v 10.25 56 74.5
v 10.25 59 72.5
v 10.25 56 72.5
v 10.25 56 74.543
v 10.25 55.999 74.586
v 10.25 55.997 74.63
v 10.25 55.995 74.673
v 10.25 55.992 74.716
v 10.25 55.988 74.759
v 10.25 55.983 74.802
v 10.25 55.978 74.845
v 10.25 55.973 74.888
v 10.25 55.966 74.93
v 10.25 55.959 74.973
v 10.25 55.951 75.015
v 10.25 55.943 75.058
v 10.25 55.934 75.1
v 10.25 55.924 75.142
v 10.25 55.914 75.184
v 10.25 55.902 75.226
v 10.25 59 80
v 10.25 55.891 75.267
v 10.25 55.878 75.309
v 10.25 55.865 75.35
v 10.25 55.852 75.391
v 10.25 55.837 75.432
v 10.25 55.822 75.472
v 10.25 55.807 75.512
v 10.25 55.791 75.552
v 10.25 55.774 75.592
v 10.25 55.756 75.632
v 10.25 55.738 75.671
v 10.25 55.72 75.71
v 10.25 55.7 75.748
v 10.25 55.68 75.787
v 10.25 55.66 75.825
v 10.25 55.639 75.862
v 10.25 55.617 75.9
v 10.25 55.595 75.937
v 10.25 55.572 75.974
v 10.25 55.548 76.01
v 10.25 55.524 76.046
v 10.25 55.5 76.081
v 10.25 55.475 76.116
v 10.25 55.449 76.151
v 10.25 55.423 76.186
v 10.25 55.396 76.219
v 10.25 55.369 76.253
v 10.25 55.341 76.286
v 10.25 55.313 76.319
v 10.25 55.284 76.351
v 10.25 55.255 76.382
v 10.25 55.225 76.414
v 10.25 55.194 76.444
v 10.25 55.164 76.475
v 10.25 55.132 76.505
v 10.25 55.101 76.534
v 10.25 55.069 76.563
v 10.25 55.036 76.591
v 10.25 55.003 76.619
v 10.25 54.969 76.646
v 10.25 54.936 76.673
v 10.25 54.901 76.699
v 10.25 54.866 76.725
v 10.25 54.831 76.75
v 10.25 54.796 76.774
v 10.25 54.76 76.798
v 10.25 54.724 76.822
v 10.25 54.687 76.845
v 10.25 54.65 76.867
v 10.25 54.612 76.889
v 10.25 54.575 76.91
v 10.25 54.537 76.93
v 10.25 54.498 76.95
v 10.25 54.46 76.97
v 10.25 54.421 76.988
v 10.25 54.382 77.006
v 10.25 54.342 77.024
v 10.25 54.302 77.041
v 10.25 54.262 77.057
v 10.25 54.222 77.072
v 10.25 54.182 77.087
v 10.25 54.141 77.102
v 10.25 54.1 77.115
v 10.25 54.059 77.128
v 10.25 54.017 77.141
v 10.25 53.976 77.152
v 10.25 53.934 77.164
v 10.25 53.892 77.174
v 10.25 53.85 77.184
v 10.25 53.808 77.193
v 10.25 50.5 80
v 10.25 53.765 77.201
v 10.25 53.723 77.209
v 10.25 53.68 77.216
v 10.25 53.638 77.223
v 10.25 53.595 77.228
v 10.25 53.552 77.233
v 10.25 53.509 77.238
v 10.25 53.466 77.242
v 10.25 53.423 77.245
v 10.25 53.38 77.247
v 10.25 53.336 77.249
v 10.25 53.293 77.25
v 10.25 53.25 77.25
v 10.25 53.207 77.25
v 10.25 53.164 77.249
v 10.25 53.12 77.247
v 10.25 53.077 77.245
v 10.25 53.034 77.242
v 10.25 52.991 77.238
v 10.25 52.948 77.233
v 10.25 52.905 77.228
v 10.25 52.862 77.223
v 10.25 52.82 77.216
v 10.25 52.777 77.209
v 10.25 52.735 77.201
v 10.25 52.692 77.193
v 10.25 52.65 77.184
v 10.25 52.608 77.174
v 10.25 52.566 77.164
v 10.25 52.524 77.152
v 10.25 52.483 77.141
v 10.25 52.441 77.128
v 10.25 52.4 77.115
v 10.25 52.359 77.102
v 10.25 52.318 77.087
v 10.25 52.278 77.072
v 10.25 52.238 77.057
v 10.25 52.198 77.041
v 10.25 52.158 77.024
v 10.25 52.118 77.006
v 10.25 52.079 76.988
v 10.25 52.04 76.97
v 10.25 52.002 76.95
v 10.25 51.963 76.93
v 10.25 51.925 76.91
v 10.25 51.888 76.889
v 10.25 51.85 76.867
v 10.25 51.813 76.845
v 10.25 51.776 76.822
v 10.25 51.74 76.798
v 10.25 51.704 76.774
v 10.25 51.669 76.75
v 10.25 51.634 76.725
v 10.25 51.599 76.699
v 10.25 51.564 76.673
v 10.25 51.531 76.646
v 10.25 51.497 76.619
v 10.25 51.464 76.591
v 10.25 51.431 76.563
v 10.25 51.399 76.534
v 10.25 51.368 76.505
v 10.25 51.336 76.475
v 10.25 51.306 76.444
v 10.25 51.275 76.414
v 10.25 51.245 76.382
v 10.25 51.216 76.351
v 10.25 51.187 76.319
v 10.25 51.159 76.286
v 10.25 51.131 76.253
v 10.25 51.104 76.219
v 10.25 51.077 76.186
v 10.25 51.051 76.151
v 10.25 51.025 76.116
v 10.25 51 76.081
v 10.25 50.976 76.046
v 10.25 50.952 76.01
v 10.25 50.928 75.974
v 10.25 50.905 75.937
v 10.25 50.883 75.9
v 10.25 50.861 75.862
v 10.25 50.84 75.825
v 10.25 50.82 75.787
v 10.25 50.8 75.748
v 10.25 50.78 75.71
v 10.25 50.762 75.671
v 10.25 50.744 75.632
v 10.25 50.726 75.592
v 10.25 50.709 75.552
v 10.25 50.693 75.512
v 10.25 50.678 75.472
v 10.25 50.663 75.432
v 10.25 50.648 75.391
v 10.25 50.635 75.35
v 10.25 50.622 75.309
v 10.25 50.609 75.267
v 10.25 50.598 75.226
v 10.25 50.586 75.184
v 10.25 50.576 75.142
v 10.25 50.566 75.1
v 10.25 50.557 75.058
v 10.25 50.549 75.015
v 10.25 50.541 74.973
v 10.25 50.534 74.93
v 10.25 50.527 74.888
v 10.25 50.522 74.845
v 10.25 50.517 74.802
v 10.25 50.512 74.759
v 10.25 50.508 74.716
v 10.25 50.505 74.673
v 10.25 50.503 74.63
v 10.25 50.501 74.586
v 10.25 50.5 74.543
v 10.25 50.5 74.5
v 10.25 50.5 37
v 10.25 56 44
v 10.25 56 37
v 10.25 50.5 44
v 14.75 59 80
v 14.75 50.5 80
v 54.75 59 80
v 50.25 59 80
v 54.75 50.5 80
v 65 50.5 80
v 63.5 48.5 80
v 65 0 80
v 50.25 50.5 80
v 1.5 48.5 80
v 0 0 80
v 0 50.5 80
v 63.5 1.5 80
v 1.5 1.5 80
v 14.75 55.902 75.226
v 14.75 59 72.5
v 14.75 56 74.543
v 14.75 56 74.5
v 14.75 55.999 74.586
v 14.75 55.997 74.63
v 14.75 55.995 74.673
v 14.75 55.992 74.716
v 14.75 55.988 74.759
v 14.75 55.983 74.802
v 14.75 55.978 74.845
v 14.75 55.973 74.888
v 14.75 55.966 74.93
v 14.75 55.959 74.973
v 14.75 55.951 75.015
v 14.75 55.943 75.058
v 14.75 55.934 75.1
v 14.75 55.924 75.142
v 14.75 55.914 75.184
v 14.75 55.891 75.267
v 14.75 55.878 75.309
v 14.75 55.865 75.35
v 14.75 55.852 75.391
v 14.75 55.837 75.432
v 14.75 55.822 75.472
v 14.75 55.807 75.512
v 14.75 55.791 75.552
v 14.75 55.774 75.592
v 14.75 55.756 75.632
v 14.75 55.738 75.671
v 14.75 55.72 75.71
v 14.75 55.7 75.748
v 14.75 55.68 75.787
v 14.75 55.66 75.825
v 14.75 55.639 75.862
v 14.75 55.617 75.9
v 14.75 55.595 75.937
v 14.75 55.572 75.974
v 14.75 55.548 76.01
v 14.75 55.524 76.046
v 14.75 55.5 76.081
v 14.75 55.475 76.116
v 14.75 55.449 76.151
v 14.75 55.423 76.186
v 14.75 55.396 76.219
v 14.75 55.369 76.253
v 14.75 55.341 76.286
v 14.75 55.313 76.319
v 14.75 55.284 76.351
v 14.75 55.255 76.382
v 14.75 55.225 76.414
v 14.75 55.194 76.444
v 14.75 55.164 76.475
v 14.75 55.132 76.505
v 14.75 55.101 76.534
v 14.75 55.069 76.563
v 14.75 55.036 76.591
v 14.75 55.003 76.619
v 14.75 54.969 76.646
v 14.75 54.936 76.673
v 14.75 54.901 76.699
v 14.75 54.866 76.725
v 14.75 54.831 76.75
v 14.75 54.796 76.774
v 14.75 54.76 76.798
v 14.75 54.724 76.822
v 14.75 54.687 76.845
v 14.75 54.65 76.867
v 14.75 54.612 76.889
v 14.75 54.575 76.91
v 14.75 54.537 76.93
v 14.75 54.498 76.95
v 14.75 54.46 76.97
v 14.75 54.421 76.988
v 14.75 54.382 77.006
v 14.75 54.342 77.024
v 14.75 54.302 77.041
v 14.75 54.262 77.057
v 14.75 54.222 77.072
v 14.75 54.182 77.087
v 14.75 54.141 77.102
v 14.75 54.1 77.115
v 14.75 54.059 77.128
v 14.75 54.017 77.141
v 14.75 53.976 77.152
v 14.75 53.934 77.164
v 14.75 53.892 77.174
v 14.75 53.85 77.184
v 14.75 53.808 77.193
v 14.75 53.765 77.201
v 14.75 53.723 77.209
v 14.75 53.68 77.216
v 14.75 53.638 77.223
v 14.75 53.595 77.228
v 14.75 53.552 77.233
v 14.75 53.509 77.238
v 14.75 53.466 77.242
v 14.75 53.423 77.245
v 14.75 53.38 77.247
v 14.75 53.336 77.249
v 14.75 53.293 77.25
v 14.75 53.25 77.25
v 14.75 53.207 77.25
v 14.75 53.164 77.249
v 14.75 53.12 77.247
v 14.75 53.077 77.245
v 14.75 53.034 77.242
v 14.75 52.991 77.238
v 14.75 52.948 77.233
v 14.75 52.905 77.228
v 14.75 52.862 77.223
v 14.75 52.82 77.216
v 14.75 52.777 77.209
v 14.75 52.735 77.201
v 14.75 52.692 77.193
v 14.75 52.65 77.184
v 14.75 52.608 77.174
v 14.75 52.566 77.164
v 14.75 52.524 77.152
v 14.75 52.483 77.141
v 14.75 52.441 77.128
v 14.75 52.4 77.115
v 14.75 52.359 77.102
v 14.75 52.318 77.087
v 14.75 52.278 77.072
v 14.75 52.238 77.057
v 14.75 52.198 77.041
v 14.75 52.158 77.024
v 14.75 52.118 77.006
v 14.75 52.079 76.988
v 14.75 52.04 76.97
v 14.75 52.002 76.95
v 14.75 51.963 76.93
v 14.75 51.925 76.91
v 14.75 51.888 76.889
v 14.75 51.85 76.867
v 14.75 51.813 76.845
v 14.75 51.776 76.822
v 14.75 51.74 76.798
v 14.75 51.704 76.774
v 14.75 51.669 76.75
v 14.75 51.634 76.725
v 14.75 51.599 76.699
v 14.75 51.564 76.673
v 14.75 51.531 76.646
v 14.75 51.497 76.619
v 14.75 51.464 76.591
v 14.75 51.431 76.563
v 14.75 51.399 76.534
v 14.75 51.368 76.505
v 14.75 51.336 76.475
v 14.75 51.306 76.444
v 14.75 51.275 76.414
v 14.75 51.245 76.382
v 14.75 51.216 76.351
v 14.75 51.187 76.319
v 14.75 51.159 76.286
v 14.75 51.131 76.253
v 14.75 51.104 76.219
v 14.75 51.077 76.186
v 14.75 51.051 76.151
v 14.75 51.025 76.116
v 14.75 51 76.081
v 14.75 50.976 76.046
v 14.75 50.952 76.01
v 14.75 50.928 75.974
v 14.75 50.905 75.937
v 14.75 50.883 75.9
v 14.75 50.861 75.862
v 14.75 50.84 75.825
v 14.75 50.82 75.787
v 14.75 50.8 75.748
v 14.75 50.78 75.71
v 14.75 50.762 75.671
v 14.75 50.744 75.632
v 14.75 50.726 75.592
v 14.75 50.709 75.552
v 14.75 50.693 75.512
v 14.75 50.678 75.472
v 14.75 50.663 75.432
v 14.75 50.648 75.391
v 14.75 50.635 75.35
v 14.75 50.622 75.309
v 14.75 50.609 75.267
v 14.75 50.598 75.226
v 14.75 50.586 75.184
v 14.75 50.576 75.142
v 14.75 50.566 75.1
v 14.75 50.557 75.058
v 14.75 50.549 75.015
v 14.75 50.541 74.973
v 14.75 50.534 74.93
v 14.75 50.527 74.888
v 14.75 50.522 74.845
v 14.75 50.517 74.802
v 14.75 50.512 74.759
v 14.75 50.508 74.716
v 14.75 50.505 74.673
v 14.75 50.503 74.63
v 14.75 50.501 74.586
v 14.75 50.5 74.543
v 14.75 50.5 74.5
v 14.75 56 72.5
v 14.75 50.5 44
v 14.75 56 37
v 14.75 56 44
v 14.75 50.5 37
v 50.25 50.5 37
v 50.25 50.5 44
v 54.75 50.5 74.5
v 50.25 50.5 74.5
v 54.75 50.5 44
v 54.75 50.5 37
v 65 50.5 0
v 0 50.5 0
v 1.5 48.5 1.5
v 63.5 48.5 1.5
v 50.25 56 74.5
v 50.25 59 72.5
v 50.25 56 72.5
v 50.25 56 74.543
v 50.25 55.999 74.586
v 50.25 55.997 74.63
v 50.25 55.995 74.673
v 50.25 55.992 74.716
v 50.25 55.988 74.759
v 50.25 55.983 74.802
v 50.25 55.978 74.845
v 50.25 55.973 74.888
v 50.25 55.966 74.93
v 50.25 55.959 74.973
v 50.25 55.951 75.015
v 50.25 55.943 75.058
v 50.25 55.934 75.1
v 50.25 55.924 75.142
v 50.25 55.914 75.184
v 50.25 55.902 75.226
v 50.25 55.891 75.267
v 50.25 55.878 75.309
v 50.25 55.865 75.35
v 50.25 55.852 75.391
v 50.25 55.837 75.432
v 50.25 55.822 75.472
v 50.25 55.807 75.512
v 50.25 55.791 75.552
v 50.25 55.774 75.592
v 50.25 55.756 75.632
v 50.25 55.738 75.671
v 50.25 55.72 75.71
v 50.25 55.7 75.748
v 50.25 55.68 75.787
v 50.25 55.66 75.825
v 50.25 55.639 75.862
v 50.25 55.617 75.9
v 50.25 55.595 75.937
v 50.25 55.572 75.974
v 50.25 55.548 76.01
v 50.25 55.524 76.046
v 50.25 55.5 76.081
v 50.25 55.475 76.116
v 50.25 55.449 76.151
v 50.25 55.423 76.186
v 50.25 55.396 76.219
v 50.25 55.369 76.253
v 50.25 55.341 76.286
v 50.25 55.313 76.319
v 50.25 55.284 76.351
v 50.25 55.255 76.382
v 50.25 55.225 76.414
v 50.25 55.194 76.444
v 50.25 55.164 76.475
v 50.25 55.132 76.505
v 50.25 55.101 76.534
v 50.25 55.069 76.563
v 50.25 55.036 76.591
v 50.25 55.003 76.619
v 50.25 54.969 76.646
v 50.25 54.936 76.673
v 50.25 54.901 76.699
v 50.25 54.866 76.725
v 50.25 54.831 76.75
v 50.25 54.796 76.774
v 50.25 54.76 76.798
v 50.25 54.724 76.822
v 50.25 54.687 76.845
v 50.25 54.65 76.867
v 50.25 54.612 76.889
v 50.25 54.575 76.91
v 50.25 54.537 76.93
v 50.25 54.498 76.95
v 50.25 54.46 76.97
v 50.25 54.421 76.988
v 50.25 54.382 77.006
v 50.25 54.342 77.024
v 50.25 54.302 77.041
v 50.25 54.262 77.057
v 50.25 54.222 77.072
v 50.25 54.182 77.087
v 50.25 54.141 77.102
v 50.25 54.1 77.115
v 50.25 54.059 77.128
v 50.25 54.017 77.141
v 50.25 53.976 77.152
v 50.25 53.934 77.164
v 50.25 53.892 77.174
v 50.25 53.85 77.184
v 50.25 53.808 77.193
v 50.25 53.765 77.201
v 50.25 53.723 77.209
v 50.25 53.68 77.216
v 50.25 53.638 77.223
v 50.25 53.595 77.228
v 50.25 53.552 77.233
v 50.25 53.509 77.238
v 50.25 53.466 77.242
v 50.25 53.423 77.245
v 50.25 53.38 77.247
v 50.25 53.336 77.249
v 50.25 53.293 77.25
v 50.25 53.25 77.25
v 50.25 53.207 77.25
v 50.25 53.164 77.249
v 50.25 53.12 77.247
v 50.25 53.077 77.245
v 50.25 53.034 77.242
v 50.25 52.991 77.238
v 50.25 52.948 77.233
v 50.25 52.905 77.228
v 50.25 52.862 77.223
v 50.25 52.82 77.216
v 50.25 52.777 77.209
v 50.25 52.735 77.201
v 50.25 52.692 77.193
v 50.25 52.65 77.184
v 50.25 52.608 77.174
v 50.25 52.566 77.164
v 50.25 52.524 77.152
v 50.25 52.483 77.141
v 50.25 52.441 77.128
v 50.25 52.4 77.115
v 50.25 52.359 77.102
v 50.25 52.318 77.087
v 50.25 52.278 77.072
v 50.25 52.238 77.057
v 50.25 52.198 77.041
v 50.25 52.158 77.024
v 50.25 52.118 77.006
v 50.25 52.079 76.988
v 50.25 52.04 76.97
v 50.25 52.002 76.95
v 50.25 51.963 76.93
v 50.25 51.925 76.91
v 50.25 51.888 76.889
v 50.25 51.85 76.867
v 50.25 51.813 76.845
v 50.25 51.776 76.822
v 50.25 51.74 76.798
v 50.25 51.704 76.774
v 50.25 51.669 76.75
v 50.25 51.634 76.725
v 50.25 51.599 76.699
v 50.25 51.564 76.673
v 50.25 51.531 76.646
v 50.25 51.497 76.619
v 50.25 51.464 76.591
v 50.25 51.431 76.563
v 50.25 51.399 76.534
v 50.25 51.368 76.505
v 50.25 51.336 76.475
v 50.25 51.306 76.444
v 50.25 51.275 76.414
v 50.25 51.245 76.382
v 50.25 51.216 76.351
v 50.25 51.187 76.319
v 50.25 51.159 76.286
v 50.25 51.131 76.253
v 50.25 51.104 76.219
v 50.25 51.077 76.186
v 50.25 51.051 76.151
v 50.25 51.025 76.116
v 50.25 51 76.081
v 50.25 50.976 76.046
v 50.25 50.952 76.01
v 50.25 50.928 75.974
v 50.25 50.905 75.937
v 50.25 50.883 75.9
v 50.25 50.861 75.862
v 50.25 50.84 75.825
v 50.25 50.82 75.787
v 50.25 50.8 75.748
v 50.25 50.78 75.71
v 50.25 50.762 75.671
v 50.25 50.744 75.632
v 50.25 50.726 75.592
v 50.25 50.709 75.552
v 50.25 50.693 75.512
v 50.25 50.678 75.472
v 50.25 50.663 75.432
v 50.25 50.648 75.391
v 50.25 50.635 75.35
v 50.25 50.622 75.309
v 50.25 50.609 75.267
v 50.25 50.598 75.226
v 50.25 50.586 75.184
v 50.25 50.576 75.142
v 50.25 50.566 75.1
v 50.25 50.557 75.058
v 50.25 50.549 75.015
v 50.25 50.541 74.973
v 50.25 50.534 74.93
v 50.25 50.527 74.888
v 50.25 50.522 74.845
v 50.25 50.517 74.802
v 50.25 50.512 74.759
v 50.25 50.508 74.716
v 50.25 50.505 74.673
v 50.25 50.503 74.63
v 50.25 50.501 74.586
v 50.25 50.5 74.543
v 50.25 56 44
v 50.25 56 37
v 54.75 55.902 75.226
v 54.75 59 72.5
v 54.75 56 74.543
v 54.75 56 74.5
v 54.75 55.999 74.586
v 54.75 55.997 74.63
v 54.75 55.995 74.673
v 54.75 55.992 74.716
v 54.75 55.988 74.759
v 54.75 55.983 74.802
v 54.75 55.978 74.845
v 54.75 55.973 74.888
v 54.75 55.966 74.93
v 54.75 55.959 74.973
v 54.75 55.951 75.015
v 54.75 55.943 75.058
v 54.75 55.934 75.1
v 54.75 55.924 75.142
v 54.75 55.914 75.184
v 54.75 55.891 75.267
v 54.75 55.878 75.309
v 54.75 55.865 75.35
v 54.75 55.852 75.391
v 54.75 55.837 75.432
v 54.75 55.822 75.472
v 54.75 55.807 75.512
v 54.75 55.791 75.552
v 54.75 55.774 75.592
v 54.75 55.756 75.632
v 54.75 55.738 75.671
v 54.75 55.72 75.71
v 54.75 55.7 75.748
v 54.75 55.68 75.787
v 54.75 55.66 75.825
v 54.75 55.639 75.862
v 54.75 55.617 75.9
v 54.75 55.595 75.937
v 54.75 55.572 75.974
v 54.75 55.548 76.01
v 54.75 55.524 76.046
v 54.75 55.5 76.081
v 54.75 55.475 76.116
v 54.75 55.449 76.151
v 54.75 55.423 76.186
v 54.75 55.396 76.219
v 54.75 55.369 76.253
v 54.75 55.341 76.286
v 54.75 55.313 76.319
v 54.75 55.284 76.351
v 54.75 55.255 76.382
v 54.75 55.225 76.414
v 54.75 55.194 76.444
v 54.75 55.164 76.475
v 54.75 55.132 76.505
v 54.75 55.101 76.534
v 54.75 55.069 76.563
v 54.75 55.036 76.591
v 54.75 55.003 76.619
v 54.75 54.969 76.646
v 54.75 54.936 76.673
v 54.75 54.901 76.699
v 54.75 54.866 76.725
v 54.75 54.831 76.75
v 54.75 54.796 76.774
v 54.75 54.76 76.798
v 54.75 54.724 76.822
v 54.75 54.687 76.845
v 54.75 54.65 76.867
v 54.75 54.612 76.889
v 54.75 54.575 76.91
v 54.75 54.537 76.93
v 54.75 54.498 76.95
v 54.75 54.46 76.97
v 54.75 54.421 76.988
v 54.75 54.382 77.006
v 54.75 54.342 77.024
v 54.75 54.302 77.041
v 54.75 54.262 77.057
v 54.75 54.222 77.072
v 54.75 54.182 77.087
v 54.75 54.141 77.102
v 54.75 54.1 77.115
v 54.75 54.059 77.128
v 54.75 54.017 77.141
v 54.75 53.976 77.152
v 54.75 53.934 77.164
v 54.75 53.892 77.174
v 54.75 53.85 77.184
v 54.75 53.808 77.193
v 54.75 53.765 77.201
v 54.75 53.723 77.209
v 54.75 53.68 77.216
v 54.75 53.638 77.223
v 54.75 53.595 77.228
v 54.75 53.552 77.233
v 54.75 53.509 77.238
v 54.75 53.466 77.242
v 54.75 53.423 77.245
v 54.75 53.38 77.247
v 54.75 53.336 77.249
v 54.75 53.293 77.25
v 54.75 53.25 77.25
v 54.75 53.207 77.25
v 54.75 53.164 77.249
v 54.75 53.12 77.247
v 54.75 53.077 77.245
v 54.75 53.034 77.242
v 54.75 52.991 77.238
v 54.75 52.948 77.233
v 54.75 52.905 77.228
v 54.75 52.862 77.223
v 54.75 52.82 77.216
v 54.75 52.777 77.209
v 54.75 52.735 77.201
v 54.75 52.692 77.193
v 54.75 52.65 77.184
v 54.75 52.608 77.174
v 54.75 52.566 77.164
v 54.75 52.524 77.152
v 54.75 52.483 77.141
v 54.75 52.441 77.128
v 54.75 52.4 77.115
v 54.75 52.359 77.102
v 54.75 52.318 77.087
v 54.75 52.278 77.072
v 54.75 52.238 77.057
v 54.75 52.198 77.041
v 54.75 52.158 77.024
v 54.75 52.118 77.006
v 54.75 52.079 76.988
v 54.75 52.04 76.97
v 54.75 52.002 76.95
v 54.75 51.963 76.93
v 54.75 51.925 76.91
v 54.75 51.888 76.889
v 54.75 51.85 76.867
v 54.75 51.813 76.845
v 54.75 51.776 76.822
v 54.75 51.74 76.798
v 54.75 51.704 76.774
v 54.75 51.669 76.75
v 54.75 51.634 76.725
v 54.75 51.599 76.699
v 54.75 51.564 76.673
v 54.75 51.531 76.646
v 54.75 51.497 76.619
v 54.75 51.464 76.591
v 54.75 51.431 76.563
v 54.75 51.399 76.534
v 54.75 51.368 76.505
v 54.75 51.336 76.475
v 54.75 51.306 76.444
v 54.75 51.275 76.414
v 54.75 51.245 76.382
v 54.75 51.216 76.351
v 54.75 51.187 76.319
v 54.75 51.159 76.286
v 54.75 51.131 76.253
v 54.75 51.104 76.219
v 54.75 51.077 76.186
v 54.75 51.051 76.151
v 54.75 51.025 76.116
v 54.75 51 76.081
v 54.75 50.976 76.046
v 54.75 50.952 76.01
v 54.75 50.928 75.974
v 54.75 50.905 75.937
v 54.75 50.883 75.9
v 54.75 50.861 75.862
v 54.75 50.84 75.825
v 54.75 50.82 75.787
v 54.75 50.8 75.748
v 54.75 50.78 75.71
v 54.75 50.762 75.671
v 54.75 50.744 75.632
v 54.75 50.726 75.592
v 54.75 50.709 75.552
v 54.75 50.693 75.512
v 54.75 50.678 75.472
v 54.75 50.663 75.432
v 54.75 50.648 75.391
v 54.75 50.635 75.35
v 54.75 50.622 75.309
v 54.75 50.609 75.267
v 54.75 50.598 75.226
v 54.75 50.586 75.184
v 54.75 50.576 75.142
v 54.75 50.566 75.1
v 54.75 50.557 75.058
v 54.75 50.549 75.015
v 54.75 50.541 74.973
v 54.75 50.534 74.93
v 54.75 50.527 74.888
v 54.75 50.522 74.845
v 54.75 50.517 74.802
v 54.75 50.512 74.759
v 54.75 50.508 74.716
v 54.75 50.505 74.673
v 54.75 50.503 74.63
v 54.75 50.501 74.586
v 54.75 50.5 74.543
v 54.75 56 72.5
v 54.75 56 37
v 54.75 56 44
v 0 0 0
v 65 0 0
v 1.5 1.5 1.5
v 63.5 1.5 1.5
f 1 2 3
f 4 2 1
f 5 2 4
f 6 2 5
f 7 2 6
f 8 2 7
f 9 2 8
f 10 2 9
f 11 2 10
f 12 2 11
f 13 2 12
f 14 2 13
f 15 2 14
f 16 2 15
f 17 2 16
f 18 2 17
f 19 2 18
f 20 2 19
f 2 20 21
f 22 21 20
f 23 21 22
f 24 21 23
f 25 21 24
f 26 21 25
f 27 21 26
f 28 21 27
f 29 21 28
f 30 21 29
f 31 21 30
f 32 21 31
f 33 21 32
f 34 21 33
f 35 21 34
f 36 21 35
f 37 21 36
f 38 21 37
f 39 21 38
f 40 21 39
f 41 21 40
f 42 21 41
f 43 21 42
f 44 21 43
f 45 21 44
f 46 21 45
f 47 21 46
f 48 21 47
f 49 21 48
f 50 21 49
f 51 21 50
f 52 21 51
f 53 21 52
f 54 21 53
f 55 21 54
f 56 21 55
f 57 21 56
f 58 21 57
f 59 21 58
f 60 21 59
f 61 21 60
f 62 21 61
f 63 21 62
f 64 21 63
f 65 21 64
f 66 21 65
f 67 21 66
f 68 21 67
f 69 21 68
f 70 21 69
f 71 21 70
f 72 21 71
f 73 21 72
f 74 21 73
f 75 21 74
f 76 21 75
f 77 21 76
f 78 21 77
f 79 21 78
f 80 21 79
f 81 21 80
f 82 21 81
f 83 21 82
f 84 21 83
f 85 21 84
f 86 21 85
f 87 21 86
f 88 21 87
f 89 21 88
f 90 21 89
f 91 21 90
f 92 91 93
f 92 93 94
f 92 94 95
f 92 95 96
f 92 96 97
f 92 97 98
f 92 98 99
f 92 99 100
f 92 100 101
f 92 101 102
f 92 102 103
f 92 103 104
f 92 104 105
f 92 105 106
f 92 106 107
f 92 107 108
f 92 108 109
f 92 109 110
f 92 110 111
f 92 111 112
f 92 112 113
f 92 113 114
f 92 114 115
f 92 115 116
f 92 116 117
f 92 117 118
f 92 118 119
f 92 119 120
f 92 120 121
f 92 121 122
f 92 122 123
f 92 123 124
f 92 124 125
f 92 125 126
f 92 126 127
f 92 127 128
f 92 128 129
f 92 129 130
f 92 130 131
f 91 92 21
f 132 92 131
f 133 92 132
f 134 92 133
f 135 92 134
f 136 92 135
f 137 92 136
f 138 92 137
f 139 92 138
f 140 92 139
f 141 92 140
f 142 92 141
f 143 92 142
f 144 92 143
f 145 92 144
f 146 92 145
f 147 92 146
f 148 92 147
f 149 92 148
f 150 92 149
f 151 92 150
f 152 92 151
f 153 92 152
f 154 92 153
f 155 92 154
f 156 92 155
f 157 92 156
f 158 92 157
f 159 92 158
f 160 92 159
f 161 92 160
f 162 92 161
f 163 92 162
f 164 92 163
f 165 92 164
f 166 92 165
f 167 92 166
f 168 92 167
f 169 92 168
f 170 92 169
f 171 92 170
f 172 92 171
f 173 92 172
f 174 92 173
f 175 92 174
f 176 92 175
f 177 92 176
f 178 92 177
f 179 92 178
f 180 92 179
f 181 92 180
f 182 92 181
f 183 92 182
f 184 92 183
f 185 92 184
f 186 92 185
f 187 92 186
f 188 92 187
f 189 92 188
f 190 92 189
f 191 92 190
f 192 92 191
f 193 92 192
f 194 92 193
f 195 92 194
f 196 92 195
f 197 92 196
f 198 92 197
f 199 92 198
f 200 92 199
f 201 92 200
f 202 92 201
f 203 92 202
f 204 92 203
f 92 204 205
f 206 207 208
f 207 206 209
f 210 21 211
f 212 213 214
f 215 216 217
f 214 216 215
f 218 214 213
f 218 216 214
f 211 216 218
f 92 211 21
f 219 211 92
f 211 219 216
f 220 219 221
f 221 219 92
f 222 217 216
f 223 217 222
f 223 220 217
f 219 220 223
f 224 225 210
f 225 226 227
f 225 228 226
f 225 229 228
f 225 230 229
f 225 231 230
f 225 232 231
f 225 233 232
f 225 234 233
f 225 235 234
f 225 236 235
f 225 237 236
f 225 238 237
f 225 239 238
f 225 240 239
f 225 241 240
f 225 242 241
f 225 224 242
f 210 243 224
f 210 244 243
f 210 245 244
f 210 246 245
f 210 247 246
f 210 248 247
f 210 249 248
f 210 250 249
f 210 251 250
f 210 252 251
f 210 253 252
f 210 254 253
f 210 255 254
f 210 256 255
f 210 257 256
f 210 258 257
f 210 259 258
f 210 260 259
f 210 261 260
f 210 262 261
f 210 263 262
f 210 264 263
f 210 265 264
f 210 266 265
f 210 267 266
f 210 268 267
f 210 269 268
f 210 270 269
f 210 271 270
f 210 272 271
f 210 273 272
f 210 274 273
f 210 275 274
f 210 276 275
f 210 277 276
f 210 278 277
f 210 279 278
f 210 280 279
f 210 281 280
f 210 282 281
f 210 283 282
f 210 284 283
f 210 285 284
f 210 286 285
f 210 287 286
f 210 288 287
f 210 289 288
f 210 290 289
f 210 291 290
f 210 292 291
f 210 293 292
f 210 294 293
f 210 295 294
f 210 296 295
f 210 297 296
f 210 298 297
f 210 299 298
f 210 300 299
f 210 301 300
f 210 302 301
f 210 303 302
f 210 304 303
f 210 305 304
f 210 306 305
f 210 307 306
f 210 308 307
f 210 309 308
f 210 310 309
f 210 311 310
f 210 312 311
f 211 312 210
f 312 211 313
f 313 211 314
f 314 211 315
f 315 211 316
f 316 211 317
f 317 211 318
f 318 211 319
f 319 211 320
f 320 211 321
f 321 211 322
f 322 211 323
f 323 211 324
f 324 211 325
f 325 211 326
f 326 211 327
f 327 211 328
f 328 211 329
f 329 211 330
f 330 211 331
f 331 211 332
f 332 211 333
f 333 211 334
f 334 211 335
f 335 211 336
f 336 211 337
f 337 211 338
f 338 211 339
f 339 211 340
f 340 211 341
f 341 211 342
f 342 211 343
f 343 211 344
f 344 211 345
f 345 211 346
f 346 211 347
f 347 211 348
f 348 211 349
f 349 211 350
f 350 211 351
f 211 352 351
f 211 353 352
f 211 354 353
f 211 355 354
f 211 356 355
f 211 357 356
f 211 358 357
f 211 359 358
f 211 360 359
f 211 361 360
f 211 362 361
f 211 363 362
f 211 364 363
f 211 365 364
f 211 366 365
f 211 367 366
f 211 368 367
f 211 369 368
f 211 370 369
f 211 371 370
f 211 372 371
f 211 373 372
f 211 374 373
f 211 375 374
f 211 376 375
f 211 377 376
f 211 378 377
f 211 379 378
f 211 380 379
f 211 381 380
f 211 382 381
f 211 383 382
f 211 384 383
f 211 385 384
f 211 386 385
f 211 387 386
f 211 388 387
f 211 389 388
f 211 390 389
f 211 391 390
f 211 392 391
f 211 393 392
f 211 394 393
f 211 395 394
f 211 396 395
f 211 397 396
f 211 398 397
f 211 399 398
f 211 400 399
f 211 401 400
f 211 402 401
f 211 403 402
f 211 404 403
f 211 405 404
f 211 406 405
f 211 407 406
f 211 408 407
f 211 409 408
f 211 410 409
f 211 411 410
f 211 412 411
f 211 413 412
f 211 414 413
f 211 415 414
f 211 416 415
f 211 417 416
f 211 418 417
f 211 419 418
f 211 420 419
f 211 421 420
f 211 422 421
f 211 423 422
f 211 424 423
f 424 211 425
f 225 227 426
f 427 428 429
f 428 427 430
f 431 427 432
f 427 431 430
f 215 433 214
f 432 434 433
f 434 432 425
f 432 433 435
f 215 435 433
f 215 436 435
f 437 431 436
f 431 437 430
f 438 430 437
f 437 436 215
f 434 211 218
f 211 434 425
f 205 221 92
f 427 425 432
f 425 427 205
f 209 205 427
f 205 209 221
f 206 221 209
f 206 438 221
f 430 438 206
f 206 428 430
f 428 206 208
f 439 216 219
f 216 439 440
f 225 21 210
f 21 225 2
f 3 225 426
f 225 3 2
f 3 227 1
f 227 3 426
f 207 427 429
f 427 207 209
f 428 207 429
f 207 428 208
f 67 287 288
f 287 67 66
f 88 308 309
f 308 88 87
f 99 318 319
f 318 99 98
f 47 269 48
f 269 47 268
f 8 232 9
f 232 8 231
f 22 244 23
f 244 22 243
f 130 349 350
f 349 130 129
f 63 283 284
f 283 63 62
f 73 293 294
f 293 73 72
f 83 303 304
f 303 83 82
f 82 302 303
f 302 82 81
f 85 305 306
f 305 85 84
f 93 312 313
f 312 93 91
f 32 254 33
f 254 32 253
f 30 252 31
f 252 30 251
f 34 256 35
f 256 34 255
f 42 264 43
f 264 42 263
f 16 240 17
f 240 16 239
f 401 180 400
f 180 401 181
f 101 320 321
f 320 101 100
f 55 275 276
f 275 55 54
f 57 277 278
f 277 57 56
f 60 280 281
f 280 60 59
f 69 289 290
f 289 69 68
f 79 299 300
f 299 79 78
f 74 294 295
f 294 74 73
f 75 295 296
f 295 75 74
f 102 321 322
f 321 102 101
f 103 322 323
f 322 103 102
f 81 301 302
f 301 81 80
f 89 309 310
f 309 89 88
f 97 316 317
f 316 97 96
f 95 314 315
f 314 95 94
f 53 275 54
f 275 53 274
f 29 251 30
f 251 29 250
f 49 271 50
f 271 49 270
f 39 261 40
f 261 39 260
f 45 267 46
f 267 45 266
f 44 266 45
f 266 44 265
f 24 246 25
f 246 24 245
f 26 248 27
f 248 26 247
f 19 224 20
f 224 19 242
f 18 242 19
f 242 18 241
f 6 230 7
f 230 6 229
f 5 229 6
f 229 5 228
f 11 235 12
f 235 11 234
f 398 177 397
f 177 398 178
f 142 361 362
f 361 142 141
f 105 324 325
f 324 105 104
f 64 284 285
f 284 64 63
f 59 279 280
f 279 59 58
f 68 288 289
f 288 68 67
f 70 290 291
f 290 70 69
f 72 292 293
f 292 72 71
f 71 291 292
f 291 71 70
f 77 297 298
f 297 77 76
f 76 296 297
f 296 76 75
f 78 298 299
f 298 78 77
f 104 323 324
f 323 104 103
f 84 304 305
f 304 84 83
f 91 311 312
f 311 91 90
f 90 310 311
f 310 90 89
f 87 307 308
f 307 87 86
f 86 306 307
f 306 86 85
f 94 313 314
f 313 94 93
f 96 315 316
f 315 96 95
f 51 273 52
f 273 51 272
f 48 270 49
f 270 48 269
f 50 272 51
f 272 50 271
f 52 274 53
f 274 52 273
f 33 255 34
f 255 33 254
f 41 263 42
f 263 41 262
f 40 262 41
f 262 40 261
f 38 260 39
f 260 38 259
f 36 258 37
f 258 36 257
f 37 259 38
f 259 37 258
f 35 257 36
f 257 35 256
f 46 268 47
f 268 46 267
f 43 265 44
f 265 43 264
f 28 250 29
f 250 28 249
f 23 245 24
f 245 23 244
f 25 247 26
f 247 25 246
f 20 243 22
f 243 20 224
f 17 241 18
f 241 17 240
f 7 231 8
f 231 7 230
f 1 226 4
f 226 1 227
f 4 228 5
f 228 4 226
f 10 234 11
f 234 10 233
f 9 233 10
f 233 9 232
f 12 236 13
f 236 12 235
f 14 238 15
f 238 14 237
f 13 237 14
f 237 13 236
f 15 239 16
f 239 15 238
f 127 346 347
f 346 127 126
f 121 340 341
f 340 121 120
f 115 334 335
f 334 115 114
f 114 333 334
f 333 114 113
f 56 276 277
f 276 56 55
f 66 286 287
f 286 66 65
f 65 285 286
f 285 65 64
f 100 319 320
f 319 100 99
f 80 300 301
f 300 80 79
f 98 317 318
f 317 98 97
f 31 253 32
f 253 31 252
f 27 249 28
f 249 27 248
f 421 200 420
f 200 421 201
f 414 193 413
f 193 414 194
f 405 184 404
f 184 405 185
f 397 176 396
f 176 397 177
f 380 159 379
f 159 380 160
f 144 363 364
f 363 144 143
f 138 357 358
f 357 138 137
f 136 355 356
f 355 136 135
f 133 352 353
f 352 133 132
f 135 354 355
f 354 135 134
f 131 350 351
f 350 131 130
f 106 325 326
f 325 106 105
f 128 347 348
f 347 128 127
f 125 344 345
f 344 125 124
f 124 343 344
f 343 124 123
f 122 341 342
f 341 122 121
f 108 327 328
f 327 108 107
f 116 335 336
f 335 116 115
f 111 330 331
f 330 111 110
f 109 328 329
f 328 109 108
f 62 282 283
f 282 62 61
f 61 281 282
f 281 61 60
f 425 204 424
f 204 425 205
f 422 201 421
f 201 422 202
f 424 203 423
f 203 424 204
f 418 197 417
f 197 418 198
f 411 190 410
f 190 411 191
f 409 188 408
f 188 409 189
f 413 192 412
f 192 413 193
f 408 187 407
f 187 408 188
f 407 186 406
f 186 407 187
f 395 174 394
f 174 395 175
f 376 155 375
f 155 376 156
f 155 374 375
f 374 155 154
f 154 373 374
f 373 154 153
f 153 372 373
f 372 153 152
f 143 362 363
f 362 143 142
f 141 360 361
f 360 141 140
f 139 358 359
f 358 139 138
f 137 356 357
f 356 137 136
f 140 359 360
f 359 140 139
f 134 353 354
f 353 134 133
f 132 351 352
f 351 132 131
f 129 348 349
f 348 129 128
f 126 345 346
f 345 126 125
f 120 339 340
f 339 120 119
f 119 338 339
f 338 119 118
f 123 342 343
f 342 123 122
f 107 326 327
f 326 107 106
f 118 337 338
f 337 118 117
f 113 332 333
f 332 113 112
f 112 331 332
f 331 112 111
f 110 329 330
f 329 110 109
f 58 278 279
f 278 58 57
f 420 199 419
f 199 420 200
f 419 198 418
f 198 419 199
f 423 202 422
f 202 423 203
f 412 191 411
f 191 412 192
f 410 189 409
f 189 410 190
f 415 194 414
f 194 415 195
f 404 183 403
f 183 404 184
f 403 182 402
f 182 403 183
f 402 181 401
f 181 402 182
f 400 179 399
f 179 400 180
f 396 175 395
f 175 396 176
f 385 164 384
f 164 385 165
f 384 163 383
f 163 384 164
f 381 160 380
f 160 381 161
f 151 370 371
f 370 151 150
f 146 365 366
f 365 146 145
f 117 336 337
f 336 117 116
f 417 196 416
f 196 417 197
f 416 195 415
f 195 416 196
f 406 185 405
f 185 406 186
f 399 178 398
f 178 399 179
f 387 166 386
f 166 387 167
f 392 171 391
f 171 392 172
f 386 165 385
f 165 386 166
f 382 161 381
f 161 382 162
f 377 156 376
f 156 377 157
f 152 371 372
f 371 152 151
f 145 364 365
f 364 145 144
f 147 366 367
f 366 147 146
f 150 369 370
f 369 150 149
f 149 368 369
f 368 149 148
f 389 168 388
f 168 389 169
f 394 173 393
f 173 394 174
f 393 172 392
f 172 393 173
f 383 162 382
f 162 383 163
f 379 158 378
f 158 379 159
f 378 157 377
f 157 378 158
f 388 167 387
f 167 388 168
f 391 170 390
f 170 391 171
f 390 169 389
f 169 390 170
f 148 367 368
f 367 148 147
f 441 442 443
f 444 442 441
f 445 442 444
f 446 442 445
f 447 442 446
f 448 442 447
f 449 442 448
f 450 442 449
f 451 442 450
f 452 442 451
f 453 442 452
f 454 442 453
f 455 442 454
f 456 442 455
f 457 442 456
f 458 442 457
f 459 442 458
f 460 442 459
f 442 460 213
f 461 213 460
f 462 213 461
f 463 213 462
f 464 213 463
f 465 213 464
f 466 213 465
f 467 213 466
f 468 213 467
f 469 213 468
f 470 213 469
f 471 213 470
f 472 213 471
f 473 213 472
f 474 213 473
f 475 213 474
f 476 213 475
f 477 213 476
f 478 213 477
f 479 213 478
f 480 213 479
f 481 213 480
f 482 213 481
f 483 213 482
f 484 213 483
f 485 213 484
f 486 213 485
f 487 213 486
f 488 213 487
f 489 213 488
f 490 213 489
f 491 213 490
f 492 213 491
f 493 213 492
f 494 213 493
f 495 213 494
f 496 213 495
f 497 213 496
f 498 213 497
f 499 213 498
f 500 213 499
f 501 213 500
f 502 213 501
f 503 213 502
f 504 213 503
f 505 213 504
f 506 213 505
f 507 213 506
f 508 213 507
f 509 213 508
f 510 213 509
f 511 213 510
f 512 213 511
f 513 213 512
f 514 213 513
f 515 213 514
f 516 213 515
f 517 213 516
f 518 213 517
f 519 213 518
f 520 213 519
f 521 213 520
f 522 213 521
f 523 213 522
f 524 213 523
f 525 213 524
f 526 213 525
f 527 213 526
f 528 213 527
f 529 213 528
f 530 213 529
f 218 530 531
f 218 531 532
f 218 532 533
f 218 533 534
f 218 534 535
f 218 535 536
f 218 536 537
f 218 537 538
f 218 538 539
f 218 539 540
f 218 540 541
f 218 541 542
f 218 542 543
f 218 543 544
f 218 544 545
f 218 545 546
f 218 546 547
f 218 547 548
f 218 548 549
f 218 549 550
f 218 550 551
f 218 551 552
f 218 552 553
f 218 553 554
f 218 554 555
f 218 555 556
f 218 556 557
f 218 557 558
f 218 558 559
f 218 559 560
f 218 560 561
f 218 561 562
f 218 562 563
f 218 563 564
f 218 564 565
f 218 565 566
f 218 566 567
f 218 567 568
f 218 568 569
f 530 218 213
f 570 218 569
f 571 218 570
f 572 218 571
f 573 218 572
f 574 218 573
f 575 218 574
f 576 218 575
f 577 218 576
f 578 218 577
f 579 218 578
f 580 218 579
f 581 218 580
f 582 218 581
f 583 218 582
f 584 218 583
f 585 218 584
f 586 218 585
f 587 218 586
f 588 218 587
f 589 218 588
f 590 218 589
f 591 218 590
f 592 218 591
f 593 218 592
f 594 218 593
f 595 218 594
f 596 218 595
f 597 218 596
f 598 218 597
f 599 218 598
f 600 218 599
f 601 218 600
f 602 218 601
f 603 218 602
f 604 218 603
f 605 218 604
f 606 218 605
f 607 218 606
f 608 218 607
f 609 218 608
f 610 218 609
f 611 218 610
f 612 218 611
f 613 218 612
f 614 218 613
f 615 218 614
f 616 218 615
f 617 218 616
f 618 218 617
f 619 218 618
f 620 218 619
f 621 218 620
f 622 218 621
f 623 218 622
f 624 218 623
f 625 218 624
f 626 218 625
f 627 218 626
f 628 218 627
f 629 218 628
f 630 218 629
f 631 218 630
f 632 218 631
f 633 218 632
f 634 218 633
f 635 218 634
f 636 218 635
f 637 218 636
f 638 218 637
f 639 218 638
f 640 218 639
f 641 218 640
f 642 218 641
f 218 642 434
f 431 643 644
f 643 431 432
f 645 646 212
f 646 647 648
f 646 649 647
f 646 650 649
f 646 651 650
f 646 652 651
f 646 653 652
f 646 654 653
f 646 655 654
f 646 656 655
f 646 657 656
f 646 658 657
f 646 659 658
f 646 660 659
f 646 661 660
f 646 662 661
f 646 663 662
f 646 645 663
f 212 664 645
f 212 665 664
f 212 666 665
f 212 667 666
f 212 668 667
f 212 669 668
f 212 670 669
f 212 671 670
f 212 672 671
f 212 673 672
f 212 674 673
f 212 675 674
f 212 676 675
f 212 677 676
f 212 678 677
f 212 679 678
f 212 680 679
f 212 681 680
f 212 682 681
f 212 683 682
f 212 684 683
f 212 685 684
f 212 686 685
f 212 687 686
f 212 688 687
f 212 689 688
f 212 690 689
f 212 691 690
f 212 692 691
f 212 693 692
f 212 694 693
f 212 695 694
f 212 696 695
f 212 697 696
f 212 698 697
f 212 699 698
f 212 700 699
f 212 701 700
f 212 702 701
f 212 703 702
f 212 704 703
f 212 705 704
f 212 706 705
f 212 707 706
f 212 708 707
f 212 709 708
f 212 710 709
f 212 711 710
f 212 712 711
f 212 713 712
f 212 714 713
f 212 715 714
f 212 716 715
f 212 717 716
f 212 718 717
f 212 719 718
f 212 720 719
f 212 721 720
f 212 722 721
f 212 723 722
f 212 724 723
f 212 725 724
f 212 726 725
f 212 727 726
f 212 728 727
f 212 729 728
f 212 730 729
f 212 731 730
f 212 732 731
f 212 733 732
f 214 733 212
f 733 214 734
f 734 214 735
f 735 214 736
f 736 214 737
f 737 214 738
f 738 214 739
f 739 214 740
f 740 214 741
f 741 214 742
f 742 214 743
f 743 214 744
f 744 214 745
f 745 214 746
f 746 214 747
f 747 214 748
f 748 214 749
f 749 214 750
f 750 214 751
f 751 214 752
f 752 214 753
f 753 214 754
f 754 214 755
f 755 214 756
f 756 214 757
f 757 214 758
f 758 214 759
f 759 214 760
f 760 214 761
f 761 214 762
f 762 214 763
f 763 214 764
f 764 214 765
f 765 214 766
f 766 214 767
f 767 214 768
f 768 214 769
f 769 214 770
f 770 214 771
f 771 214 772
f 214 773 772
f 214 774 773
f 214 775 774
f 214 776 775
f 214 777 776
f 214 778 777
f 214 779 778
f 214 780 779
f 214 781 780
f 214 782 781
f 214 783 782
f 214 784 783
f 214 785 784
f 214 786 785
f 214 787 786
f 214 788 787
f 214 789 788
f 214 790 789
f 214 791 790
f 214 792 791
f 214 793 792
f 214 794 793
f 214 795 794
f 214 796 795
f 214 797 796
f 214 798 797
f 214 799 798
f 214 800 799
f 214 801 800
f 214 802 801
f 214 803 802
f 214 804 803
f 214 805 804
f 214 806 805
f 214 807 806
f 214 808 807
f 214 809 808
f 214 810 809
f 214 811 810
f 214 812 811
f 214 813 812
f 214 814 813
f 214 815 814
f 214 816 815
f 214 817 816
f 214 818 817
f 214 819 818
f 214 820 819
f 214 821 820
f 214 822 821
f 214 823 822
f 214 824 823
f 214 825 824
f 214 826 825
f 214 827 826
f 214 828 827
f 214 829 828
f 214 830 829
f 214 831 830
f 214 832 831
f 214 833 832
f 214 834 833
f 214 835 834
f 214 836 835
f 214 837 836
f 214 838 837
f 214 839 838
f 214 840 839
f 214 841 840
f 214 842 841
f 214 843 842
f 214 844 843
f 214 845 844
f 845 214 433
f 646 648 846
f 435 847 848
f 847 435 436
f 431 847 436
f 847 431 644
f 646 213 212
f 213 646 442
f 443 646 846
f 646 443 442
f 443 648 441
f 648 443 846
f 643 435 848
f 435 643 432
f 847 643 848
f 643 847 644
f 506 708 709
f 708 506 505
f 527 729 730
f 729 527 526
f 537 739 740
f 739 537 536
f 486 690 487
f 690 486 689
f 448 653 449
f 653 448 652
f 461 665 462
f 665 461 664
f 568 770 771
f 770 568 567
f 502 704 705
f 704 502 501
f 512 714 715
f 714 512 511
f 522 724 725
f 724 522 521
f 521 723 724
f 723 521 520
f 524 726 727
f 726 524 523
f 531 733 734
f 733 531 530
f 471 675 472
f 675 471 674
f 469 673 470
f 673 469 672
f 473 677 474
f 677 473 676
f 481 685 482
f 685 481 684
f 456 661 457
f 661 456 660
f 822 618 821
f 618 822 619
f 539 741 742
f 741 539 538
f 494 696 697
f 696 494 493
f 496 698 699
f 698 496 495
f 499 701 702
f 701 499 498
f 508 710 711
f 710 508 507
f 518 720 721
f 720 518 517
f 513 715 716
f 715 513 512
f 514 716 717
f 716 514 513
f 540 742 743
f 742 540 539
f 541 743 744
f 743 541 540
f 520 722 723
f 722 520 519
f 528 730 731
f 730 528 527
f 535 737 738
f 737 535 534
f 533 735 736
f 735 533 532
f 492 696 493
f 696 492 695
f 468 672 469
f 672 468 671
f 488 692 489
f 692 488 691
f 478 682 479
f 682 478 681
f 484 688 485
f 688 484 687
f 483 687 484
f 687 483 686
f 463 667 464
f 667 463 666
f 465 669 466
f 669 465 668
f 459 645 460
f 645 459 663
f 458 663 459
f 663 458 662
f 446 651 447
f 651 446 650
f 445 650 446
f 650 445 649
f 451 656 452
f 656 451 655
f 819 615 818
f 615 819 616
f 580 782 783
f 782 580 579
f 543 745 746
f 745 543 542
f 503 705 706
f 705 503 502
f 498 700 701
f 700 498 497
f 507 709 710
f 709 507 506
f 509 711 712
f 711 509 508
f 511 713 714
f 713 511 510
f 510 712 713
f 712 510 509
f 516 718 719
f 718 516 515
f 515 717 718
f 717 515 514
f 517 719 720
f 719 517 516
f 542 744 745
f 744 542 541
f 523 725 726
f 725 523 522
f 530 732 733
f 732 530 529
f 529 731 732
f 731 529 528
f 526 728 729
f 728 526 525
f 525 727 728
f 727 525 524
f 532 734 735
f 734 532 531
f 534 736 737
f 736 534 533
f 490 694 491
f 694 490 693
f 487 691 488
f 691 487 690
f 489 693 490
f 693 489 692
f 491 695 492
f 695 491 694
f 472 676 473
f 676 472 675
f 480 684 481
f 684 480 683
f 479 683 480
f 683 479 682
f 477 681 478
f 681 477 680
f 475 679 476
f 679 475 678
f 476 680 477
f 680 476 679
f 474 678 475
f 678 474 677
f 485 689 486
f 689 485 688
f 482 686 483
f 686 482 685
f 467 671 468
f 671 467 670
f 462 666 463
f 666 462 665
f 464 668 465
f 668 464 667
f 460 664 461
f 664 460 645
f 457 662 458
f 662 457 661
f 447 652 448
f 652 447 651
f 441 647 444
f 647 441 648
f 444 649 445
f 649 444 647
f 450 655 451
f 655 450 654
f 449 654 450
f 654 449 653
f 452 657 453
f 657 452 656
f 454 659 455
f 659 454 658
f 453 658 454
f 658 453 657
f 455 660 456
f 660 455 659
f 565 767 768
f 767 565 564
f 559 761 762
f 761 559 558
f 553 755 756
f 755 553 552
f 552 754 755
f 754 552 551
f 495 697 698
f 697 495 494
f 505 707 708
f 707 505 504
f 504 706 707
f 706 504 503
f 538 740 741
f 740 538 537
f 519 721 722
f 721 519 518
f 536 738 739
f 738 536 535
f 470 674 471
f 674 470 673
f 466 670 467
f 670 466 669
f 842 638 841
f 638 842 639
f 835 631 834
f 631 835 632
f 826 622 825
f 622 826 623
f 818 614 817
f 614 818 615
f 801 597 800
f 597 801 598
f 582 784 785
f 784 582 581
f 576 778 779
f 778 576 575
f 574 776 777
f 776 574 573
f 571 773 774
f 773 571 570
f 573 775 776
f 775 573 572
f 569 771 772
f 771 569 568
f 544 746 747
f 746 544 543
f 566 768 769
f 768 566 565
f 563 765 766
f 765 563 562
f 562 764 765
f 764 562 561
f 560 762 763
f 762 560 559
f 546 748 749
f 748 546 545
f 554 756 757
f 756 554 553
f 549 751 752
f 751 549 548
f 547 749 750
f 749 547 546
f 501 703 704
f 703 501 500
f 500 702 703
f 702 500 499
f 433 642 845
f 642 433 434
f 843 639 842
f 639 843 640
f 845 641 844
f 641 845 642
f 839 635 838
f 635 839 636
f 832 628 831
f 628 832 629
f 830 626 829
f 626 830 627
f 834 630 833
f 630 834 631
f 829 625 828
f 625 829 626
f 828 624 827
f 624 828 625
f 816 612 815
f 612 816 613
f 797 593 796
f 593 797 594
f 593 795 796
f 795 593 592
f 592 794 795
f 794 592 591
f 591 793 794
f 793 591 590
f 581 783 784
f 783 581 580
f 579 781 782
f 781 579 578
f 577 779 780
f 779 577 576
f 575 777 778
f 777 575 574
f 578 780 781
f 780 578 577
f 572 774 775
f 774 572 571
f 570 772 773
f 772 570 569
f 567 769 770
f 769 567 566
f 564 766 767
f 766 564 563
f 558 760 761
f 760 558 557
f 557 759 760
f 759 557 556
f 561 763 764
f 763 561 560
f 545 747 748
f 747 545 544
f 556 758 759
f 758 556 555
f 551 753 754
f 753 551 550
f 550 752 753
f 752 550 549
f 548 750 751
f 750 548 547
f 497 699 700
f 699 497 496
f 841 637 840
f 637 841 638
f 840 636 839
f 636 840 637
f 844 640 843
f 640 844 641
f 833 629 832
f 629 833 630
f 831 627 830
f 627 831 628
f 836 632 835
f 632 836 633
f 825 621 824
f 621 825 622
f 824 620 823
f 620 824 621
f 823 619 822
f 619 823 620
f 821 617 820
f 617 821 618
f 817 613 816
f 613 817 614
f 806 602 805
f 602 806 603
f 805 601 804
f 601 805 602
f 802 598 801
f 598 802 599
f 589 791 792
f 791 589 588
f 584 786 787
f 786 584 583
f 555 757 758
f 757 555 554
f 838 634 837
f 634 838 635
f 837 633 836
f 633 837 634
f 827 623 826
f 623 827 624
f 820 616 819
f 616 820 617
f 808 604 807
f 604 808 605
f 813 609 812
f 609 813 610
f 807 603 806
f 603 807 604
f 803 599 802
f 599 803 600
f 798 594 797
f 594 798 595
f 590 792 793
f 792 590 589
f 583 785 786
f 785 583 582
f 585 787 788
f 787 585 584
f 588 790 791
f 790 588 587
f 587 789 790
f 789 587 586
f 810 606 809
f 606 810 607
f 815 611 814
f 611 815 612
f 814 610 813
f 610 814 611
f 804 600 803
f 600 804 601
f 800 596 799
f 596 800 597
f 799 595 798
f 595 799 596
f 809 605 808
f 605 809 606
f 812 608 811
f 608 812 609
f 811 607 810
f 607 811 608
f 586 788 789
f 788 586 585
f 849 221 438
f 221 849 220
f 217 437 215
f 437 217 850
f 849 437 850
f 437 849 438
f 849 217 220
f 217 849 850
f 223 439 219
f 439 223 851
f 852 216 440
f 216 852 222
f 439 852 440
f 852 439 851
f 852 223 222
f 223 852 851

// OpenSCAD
// file: IKEA Skadis include holder.scad
$fn=400;

sh_height=43;
sh_width=4.5;
sh_hanger_spacing=5.5;
sh_material_size=2;
sh_short_tail=2;

module ikea_skadis_holder() {
    difference() {
        union() {
            
            //Vertical wall
            color("green")
            cube([sh_width,sh_material_size,sh_height]);
            
            // Retainer
            color("blue")
            translate([0,0,sh_height-sh_hanger_spacing])
            cube([sh_width,sh_hanger_spacing+sh_material_size*2+1,sh_hanger_spacing]);
            
            //Vertical wall (short)
            color("cyan")
            translate([0, sh_hanger_spacing+sh_material_size,sh_height-sh_short_tail-sh_hanger_spacing])
            cube([sh_width,sh_material_size+1,sh_short_tail]);

            //Schnöpsel
            color("yellow")
            translate([0, sh_material_size,0])
            cube([sh_width,sh_hanger_spacing,7]);
        }
        
        
    color("red")
    translate([-1,sh_material_size+sh_hanger_spacing/2,sh_height-sh_hanger_spacing])
    rotate([0,90,0])
    cylinder(sh_width+2, sh_hanger_spacing/2, sh_hanger_spacing/2);
        
    }
}
ikea_skadis_holder();
// file: IKEA Skadis include backwall with 2 hooks.scad
$fn=400;

sh_holder_thickness = 4.5;
sh_holder_height = 43;

use <./IKEA Skadis include holder.scad>

module ikea_skadis_backwall(width, height) {
    union() {

        width = width > 43  ? width : 44;

        // backwall
        cube([width,2,height]);

        if(height < sh_holder_height) {
            // holder left
            translate([width/2-sh_holder_thickness/2-20,0,0])
            ikea_skadis_holder();

            // holder right
            translate([width/2-sh_holder_thickness/2+20,0,0])
            ikea_skadis_holder();
        } else {
            // holder left
            translate([width/2-sh_holder_thickness/2-20,0,height-sh_holder_height])
            ikea_skadis_holder();

            // holder right
            translate([width/2-sh_holder_thickness/2+20,0,height-sh_holder_height])
            ikea_skadis_holder();
        }
    }
}

ikea_skadis_backwall(24,43);
// main file
$fn=400;

sh_cube_width = 65;
sh_cube_depth = 50;
sh_cube_height = 80;
sh_material_thickness = 1.5;

sh_holder_thickness = 4.5;
sh_holder_height = 43;

use <./IKEA Skadis include backwall with 2 hooks.scad>

union() {

    // Backwall
    translate([0,sh_cube_depth - sh_material_thickness,0])
    ikea_skadis_backwall(sh_cube_width, sh_cube_height);

    // Cube
    difference() {
        cube([sh_cube_width,sh_cube_depth,sh_cube_height]);
        translate([sh_material_thickness, sh_material_thickness, sh_material_thickness])
        cube([sh_cube_width - sh_material_thickness * 2, sh_cube_depth - sh_material_thickness * 2, sh_cube_height]);
    }
}
